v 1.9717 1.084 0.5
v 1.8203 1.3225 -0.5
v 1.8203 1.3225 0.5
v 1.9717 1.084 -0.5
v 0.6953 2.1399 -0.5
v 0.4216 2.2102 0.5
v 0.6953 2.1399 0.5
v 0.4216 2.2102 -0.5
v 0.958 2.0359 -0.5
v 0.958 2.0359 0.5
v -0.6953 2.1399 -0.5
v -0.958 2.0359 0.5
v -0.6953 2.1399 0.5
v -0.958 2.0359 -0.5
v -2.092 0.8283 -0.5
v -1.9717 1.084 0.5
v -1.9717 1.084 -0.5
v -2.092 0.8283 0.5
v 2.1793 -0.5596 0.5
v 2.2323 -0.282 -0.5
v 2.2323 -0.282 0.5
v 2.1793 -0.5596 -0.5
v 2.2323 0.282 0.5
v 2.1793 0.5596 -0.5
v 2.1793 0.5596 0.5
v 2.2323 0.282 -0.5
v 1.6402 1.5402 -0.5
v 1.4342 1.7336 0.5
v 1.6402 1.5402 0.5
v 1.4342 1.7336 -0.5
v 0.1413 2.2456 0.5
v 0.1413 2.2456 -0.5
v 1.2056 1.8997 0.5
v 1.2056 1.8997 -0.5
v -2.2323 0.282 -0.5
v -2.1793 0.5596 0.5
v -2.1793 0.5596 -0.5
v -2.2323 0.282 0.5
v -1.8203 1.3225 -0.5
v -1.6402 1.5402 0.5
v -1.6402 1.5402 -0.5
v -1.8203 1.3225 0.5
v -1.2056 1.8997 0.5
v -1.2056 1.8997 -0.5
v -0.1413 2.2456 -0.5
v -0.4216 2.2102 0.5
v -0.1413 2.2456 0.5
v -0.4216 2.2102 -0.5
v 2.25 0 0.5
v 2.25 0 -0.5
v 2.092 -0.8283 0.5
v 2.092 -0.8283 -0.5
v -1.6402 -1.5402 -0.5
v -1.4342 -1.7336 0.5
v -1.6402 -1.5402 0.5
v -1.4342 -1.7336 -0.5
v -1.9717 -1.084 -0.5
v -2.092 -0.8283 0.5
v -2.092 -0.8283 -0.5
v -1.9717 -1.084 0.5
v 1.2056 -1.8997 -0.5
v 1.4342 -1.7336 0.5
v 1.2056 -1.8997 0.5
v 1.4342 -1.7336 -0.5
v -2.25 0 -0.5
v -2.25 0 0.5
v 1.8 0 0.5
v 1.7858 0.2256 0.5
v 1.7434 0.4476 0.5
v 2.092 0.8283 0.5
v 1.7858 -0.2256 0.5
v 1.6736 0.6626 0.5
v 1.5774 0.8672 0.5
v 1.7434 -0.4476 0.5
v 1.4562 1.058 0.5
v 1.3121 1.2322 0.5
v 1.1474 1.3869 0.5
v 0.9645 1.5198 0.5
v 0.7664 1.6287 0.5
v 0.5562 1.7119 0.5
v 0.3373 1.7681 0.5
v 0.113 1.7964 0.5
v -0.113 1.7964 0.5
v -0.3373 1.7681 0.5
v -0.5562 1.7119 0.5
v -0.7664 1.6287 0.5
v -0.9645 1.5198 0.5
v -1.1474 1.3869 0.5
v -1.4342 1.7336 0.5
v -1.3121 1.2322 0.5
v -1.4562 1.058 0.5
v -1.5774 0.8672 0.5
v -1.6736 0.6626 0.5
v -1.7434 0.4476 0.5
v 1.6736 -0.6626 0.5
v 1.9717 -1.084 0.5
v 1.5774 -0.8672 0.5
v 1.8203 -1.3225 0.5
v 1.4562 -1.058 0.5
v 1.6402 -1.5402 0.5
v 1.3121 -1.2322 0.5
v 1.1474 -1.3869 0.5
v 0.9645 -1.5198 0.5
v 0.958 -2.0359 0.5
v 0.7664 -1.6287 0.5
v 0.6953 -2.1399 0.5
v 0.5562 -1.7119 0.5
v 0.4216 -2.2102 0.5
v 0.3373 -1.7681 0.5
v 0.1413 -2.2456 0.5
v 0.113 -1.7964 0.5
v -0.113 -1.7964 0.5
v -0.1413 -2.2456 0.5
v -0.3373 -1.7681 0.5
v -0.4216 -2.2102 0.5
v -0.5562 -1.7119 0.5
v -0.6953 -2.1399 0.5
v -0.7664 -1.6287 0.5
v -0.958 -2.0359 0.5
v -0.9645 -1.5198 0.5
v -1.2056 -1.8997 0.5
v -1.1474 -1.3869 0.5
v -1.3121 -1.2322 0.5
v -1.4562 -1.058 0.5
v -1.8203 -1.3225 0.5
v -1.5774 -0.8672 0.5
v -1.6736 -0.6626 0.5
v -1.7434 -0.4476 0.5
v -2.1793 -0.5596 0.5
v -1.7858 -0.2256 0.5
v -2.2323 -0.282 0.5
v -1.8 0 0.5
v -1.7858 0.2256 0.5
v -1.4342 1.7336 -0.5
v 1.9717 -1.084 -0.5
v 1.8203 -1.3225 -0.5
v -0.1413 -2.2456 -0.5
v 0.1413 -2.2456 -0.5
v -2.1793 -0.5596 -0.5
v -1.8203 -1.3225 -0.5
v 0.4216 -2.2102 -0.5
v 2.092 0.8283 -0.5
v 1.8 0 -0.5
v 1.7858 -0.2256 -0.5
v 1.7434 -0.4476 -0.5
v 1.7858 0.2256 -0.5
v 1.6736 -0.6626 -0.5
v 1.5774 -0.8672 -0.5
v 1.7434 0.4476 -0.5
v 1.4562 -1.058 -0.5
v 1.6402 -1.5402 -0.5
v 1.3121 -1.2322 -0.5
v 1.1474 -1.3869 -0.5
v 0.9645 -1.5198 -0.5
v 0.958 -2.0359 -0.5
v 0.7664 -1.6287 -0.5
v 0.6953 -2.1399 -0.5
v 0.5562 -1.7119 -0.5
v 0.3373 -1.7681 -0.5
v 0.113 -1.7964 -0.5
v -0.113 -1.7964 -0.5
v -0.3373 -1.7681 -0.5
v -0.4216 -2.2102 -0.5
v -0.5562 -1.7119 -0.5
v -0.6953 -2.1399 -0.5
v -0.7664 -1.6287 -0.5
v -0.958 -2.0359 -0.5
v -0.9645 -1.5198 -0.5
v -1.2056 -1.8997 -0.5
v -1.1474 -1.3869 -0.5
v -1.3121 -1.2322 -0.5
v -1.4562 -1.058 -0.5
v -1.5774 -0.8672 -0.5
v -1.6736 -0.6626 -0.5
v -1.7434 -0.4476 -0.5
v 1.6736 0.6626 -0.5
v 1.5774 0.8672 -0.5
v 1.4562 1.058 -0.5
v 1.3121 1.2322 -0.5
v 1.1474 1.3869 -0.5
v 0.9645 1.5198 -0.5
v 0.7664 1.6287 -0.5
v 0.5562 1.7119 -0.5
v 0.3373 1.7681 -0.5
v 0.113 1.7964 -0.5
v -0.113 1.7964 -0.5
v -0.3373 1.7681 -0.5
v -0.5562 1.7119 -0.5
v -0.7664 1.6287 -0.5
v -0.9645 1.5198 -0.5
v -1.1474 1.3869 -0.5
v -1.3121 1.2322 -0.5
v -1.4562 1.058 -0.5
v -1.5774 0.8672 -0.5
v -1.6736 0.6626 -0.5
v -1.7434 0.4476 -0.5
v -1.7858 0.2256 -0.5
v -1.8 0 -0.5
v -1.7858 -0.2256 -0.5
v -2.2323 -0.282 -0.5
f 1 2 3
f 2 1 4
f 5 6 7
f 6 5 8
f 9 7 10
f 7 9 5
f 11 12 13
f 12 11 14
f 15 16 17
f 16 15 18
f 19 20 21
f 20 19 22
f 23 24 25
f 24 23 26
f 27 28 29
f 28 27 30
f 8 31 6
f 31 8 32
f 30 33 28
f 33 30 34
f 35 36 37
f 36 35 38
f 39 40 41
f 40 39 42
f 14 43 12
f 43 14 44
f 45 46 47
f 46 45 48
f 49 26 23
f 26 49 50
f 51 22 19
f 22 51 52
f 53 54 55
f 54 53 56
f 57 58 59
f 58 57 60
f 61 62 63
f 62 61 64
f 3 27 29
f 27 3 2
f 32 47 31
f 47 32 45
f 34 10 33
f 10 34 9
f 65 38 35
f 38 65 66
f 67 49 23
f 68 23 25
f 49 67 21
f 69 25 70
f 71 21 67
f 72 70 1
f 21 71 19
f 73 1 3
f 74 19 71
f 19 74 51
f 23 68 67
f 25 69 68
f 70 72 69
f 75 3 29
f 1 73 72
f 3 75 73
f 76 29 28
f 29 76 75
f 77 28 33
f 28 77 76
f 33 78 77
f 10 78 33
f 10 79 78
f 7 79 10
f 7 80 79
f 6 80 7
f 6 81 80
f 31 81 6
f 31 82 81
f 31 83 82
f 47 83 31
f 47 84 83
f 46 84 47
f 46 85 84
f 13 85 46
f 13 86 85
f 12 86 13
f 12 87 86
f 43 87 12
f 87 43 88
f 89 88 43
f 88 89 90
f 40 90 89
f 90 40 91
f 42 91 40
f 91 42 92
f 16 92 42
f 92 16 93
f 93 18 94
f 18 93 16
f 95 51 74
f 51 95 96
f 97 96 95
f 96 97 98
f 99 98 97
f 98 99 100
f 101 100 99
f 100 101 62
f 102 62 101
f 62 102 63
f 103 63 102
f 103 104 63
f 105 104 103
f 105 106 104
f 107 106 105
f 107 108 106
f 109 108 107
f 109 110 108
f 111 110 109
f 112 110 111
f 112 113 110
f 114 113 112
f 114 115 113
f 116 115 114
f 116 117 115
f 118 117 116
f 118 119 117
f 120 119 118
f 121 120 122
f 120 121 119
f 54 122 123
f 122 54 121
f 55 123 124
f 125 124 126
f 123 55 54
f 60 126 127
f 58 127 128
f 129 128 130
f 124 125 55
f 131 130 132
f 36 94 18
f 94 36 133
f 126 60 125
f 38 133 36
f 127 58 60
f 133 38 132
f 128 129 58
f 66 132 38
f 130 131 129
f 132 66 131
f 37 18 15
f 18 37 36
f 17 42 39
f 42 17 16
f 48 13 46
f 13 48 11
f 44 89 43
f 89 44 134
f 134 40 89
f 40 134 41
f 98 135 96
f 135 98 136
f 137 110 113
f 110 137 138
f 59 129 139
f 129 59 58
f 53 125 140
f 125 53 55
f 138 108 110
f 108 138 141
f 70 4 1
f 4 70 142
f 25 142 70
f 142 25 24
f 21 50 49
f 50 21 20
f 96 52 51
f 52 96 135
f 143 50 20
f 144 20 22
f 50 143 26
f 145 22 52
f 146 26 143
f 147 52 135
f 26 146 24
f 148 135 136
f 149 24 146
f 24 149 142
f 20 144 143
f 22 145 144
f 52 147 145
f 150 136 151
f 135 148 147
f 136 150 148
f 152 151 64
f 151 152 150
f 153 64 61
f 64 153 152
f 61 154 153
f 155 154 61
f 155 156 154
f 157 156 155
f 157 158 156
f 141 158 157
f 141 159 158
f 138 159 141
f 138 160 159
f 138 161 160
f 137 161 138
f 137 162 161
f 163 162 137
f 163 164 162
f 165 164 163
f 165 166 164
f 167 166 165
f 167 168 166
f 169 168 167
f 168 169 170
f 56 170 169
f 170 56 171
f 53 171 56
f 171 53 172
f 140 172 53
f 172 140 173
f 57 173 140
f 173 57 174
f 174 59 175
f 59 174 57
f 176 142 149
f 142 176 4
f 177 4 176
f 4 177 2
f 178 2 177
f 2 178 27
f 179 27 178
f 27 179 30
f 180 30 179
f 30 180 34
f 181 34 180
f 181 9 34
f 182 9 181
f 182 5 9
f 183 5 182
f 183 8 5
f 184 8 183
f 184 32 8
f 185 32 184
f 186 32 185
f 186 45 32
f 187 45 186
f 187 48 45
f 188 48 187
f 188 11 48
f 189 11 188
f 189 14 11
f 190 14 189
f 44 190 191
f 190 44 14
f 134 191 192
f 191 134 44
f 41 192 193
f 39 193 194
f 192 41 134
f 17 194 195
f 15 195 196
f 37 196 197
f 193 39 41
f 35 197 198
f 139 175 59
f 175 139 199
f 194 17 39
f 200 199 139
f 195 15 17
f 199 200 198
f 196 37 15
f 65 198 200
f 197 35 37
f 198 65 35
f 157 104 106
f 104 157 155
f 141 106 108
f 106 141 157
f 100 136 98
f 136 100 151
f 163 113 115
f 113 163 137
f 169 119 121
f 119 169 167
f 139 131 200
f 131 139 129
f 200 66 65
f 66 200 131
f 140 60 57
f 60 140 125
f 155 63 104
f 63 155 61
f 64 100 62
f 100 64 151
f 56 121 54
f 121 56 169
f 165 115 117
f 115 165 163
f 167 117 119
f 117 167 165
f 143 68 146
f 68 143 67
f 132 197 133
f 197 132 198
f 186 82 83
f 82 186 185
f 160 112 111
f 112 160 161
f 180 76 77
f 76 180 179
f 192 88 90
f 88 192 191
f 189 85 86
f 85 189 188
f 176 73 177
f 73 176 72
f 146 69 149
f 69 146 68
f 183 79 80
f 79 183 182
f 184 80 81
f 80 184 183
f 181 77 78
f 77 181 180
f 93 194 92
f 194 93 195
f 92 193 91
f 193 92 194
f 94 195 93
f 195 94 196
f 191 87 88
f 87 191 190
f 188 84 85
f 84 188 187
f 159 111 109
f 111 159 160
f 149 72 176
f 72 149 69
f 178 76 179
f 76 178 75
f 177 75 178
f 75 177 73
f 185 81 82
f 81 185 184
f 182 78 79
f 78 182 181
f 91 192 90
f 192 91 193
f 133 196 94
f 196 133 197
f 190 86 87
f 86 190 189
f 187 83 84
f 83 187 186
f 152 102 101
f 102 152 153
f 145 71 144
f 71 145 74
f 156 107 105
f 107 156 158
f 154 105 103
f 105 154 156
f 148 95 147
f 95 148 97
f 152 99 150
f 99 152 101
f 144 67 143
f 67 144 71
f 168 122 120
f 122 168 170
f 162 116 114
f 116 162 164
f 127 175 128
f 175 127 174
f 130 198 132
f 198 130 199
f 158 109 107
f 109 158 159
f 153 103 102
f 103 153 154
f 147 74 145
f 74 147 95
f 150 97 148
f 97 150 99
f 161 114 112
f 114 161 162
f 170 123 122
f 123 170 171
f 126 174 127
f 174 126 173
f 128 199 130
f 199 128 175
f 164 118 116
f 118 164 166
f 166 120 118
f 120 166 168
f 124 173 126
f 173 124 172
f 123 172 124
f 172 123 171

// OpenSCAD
$fn = 50;


difference() {
	union() {
		translate(v = [0, 0, -0.5000000000]) {
			cylinder(h = 1, r = 2.2500000000);
		}
	}
	union() {
		translate(v = [0, 0, -100.0000000000]) {
			cylinder(h = 200, r = 1.8000000000);
		}
	}
}
